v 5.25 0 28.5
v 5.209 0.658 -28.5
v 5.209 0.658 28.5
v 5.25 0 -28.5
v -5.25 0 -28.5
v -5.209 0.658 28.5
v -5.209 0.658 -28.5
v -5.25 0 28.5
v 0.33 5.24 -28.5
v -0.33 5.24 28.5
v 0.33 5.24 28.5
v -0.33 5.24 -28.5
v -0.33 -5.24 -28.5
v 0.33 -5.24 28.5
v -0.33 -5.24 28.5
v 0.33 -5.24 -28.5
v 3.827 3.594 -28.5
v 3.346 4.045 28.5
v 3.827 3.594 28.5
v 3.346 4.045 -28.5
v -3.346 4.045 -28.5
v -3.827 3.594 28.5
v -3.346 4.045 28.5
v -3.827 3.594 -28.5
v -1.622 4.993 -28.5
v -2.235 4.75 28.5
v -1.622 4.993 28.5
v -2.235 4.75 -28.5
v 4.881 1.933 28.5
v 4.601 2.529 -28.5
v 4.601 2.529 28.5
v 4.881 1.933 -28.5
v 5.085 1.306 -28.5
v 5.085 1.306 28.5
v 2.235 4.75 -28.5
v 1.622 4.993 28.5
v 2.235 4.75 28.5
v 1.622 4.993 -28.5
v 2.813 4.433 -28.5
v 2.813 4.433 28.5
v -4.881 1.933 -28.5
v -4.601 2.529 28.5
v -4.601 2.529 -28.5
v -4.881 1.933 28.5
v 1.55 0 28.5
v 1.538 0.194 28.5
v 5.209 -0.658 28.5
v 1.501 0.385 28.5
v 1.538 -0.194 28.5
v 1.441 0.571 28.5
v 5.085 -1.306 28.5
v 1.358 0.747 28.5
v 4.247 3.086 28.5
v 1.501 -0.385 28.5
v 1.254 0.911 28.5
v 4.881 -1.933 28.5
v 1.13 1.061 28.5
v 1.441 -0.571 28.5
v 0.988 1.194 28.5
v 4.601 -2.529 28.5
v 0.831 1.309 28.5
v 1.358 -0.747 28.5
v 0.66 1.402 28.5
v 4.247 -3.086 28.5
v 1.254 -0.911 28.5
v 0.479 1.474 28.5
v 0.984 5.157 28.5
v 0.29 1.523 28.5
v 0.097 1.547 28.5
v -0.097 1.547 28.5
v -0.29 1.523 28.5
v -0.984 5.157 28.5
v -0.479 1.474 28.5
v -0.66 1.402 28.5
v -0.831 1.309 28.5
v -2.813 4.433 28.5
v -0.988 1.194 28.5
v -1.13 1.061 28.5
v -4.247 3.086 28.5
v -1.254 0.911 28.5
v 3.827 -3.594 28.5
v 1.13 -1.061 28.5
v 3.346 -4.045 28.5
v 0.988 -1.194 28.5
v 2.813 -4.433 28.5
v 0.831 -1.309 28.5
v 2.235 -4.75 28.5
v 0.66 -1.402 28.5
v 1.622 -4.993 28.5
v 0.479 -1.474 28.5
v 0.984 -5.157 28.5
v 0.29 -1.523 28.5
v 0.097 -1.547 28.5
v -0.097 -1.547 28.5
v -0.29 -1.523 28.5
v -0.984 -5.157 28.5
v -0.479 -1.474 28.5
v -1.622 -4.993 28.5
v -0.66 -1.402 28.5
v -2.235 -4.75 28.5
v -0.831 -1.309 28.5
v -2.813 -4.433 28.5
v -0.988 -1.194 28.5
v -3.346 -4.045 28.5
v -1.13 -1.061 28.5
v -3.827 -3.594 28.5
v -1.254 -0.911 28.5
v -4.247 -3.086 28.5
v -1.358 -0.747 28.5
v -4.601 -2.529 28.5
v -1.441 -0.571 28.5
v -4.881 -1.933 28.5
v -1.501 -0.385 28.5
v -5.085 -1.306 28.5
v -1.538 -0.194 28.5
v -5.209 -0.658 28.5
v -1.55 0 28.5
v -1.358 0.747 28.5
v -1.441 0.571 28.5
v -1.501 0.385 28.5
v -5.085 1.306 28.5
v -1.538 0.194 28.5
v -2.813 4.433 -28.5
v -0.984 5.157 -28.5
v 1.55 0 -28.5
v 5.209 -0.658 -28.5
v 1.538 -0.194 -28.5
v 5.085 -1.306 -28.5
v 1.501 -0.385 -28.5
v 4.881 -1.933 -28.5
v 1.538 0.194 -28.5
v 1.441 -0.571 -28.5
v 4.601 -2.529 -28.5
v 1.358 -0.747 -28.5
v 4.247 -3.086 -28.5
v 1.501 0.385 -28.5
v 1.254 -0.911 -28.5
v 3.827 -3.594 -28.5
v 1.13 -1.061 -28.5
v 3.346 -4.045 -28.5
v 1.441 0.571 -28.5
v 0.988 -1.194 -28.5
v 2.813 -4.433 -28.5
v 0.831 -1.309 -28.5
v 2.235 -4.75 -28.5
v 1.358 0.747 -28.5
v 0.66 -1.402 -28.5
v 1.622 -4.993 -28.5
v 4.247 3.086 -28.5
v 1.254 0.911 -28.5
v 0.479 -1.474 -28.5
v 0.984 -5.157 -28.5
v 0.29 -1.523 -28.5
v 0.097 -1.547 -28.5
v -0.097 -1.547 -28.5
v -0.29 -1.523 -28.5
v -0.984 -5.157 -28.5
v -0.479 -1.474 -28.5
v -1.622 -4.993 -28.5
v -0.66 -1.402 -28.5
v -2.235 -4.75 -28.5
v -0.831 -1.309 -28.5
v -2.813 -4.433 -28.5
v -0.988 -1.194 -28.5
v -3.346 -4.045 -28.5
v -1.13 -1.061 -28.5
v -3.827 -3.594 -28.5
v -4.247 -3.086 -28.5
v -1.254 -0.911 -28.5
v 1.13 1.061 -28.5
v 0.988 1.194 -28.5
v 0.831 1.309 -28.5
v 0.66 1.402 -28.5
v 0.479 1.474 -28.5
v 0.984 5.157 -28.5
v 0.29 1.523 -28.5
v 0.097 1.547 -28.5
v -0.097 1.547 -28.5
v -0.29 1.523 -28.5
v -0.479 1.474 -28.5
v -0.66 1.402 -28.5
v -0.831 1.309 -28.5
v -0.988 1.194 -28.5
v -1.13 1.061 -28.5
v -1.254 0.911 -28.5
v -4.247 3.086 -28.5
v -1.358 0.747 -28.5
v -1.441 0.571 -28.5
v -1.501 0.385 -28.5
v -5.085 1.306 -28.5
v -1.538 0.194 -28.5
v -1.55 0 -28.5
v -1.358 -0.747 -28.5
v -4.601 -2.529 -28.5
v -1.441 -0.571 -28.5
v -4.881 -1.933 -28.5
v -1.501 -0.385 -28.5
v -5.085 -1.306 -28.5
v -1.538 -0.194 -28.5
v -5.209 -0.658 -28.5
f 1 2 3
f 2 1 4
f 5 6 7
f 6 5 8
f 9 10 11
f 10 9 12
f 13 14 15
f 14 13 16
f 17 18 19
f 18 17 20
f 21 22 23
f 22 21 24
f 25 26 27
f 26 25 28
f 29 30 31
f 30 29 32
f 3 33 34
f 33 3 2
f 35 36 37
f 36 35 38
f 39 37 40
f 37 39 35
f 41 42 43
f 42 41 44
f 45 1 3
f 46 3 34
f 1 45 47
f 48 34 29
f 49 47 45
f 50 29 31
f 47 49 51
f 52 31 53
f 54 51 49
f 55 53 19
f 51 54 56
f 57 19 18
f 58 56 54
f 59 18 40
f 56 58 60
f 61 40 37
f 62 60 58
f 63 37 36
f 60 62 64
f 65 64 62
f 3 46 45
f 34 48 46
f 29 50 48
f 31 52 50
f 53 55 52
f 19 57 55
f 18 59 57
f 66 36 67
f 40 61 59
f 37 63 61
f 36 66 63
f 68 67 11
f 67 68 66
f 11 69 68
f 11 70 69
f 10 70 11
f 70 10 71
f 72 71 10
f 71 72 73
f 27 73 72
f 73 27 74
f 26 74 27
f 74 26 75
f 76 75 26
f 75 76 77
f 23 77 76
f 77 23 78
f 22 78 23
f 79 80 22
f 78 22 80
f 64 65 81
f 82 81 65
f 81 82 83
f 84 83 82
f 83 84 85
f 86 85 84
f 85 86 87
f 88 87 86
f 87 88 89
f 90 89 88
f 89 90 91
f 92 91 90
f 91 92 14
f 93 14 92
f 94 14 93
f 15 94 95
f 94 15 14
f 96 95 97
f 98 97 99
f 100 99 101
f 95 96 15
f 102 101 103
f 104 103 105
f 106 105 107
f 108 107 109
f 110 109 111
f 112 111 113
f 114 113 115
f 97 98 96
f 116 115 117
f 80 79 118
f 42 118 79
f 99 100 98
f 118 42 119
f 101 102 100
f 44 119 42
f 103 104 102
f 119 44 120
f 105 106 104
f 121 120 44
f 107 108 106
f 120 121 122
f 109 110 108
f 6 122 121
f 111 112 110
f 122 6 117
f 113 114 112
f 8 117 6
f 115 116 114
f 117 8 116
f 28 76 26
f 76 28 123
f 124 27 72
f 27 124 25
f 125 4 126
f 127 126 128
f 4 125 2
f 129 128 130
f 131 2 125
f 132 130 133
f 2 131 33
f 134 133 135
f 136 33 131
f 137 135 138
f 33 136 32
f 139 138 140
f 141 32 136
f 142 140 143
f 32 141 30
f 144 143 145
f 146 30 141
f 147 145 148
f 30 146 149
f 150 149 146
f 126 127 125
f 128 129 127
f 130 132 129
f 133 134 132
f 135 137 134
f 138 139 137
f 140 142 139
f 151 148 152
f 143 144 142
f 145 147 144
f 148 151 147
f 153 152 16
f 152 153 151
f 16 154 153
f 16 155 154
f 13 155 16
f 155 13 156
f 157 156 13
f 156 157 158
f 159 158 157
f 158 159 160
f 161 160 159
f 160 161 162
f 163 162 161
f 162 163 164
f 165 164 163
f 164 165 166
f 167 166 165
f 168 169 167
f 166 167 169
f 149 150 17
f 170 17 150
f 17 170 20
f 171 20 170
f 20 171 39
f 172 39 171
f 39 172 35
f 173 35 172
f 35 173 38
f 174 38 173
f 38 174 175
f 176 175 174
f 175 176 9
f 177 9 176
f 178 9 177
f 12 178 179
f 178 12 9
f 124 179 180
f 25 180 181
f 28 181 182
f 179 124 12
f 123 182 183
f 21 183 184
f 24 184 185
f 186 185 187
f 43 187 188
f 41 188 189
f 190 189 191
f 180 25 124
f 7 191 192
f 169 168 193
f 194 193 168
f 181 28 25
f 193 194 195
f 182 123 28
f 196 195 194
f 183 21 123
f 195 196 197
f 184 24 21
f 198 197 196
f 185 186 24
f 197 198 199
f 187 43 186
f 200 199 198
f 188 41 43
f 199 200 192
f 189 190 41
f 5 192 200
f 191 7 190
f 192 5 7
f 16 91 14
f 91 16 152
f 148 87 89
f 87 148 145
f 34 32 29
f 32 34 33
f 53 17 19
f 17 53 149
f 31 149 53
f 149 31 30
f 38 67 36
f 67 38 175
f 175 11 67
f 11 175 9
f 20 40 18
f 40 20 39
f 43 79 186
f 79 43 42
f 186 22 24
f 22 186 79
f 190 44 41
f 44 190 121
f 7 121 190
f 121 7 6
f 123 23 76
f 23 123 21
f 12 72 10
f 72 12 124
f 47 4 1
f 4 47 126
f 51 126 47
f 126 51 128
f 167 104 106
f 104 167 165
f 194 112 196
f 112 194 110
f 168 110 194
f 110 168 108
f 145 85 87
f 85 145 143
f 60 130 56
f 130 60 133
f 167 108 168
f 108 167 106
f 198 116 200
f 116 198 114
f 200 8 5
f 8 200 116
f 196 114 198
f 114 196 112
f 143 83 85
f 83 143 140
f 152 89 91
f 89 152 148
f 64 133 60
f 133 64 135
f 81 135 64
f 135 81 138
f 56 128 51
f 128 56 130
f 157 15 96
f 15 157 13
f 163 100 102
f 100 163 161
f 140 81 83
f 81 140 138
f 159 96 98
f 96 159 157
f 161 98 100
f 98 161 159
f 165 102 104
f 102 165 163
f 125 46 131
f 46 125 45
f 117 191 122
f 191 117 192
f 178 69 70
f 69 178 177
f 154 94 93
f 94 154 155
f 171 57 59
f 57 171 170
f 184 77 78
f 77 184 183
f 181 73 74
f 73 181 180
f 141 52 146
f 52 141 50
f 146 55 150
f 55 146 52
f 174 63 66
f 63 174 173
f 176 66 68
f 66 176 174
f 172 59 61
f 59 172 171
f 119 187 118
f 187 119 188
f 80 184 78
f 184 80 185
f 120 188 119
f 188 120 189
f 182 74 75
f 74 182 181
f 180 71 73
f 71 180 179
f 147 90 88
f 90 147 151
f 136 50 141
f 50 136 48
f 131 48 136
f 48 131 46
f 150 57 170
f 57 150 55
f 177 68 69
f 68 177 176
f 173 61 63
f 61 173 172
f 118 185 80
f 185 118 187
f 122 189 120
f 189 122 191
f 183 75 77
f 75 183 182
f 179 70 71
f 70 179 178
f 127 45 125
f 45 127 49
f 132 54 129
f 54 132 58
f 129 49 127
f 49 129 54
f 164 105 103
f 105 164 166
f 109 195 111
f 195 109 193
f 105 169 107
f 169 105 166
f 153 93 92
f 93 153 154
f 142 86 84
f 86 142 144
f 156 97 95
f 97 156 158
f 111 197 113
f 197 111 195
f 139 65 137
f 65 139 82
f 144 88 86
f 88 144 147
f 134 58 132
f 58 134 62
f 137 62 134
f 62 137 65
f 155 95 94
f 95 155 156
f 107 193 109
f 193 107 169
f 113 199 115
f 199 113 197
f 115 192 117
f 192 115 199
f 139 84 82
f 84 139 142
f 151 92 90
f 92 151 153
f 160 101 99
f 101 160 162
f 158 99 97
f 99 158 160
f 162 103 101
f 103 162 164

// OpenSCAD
$fn = 50;


difference() {
	union() {
		translate(v = [0, 0, -28.5000000000]) {
			cylinder(h = 57, r = 5.2500000000);
		}
	}
	union() {
		translate(v = [0, 0, -100.0000000000]) {
			cylinder(h = 200, r = 1.5500000000);
		}
	}
}
